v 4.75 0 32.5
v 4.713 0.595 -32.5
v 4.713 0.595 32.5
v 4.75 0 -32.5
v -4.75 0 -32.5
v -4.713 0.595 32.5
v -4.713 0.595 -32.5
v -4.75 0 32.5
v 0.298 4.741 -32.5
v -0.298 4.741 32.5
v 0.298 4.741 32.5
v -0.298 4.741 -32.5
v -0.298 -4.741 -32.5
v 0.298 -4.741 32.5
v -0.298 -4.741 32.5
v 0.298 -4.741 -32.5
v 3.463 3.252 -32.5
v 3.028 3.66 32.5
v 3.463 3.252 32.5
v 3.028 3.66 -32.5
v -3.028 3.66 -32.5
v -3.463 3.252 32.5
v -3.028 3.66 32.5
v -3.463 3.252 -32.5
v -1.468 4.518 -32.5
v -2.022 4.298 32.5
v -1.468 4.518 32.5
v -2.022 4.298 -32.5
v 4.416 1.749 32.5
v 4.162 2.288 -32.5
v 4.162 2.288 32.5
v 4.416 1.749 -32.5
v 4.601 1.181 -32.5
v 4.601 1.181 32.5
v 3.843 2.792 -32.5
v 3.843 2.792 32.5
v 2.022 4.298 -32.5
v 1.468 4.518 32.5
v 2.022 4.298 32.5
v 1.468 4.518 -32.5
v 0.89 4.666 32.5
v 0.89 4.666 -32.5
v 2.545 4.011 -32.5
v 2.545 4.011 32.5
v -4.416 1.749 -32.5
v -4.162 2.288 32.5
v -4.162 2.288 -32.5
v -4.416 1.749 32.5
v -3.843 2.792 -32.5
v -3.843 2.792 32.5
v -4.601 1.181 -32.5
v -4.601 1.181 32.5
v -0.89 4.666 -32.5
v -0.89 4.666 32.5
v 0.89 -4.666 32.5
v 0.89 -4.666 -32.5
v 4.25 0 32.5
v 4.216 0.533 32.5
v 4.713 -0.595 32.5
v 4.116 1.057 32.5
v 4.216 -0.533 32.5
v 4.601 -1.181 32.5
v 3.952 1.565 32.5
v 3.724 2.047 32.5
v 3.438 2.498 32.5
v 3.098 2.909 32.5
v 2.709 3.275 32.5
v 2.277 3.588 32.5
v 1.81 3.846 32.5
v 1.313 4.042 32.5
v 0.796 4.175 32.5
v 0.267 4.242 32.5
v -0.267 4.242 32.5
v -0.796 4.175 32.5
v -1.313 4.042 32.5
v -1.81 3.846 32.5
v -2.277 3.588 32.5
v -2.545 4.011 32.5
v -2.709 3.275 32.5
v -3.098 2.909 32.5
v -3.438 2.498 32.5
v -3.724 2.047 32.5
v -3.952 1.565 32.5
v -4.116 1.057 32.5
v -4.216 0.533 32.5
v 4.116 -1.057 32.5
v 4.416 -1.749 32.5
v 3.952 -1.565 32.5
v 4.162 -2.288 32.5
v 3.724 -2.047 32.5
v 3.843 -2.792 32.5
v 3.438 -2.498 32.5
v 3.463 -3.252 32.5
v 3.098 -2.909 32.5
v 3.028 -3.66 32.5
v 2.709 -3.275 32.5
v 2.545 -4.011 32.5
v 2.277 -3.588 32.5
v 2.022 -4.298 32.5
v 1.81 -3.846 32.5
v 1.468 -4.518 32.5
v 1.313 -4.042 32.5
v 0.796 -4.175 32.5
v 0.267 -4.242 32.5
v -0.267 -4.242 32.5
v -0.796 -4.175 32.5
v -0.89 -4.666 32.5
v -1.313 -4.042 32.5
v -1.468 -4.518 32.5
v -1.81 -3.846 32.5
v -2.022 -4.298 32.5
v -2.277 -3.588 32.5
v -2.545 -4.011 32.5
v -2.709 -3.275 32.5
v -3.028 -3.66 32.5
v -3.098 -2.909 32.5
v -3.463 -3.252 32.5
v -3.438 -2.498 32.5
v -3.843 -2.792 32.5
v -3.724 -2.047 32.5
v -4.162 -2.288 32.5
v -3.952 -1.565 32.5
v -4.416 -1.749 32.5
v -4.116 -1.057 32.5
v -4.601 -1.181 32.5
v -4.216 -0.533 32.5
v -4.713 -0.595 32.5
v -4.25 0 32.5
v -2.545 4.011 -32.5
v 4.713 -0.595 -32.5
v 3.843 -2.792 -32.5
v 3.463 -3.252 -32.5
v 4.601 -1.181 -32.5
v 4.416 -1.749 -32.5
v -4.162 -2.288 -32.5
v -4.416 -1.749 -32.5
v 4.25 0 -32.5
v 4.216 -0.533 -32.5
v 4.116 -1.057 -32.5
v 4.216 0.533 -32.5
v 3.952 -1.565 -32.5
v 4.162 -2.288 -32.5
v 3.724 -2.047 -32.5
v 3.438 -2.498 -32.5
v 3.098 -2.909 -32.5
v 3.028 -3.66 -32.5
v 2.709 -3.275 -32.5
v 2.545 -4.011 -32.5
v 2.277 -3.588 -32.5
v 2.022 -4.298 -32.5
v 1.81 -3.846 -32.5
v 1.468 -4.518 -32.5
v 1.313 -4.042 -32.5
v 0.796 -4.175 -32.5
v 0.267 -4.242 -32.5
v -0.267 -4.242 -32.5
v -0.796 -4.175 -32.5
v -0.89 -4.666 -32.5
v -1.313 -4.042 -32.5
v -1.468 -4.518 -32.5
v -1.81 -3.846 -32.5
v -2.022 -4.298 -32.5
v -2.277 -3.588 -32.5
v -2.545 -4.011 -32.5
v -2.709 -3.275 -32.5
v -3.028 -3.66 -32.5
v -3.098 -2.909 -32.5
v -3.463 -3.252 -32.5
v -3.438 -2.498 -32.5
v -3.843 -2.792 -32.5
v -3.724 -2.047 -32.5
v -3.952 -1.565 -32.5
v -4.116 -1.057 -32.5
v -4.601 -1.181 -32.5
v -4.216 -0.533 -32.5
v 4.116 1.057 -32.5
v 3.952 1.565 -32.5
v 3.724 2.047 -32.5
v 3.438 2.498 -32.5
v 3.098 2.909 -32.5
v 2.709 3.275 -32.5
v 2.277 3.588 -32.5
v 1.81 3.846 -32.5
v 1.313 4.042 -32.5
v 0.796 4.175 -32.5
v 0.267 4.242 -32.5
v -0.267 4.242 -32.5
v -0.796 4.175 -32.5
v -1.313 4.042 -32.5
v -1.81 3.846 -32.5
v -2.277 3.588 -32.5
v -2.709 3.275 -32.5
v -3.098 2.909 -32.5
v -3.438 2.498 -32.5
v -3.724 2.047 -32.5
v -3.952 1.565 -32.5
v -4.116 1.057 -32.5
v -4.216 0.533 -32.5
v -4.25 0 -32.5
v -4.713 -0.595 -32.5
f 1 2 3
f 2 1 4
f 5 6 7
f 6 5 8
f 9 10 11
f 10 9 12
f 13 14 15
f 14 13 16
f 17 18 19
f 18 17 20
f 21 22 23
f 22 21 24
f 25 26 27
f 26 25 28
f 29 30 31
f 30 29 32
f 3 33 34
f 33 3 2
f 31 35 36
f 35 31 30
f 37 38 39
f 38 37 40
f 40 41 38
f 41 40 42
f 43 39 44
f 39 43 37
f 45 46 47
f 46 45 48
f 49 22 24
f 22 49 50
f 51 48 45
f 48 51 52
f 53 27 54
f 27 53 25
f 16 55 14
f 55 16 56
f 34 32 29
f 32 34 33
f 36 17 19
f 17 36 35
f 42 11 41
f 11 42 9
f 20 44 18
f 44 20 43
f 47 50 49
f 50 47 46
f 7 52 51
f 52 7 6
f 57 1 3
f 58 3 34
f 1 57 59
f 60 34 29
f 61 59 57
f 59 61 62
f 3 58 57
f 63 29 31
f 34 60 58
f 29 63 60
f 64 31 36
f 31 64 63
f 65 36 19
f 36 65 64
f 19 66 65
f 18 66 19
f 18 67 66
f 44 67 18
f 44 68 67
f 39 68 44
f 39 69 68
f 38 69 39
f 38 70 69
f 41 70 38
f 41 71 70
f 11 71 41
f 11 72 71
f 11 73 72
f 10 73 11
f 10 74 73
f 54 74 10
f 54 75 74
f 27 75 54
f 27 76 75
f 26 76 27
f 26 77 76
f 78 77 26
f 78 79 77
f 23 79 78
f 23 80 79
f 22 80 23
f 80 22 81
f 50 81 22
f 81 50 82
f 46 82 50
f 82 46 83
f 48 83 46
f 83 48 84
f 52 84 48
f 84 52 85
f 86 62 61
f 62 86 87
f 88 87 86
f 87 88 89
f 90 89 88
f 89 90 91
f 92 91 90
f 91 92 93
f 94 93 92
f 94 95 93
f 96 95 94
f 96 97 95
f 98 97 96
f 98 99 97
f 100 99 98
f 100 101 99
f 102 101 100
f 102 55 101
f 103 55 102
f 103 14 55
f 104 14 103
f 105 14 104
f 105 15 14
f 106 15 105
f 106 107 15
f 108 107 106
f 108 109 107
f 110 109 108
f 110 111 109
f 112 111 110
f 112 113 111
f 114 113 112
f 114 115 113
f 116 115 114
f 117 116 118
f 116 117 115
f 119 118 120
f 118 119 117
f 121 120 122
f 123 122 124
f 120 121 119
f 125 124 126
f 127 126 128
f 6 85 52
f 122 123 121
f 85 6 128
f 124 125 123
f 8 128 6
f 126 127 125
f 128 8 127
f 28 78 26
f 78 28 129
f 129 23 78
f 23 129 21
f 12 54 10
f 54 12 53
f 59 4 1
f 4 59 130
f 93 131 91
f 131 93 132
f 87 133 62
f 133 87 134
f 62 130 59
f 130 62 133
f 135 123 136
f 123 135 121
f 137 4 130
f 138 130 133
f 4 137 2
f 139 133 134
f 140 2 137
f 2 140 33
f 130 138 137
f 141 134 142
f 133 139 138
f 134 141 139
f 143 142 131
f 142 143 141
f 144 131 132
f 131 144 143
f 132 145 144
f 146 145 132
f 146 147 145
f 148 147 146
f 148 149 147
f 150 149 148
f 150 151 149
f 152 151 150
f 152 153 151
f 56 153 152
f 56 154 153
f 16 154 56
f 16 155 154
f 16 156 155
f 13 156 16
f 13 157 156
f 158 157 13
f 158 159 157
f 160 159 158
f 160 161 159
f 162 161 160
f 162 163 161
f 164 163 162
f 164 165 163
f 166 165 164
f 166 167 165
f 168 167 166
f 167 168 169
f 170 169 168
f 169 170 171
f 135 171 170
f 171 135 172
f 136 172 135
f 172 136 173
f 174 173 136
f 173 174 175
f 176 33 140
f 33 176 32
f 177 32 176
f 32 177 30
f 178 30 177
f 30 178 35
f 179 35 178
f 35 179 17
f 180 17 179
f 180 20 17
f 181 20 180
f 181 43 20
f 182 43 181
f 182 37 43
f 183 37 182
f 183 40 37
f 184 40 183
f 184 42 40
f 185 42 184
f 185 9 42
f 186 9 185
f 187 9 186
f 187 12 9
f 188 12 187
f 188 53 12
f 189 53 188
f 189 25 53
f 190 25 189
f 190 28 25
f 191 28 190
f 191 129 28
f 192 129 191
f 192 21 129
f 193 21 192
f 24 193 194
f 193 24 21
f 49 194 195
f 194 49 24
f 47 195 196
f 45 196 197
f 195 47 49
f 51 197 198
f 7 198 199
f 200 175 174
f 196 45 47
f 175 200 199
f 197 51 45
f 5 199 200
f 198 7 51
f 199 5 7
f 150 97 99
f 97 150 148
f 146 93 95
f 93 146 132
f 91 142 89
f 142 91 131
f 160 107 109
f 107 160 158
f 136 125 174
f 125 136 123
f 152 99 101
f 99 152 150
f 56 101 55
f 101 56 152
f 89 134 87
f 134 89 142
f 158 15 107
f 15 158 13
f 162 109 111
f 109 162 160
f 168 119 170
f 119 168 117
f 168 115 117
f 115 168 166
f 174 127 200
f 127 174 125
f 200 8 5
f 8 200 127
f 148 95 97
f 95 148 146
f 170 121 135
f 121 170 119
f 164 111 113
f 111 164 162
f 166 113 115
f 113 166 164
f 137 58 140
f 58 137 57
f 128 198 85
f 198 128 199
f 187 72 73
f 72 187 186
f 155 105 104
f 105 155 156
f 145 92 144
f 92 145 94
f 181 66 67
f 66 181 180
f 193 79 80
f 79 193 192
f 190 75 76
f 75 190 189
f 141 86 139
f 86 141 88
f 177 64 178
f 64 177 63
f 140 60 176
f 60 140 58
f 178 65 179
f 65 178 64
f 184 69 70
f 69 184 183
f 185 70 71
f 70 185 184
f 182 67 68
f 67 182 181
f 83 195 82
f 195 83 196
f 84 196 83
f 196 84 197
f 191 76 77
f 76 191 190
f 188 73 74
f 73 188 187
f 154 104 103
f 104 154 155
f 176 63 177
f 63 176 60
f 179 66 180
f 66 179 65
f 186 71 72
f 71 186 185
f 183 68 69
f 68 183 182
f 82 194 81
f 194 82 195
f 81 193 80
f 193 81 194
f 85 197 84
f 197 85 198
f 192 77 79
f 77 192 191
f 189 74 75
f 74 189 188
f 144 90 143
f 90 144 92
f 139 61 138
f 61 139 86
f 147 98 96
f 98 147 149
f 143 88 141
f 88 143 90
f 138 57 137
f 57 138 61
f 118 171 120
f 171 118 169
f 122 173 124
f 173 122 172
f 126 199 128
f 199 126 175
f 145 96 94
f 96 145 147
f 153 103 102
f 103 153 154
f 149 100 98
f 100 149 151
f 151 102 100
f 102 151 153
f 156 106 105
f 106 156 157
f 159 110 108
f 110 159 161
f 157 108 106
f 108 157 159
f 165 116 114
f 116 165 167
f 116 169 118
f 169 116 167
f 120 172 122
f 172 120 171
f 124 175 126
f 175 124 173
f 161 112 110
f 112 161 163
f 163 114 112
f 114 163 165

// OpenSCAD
$fn = 50;


difference() {
	union() {
		translate(v = [0, 0, -32.5000000000]) {
			cylinder(h = 65, r = 4.7500000000);
		}
	}
	union() {
		translate(v = [0, 0, -100.0000000000]) {
			cylinder(h = 200, r = 4.2500000000);
		}
	}
}
